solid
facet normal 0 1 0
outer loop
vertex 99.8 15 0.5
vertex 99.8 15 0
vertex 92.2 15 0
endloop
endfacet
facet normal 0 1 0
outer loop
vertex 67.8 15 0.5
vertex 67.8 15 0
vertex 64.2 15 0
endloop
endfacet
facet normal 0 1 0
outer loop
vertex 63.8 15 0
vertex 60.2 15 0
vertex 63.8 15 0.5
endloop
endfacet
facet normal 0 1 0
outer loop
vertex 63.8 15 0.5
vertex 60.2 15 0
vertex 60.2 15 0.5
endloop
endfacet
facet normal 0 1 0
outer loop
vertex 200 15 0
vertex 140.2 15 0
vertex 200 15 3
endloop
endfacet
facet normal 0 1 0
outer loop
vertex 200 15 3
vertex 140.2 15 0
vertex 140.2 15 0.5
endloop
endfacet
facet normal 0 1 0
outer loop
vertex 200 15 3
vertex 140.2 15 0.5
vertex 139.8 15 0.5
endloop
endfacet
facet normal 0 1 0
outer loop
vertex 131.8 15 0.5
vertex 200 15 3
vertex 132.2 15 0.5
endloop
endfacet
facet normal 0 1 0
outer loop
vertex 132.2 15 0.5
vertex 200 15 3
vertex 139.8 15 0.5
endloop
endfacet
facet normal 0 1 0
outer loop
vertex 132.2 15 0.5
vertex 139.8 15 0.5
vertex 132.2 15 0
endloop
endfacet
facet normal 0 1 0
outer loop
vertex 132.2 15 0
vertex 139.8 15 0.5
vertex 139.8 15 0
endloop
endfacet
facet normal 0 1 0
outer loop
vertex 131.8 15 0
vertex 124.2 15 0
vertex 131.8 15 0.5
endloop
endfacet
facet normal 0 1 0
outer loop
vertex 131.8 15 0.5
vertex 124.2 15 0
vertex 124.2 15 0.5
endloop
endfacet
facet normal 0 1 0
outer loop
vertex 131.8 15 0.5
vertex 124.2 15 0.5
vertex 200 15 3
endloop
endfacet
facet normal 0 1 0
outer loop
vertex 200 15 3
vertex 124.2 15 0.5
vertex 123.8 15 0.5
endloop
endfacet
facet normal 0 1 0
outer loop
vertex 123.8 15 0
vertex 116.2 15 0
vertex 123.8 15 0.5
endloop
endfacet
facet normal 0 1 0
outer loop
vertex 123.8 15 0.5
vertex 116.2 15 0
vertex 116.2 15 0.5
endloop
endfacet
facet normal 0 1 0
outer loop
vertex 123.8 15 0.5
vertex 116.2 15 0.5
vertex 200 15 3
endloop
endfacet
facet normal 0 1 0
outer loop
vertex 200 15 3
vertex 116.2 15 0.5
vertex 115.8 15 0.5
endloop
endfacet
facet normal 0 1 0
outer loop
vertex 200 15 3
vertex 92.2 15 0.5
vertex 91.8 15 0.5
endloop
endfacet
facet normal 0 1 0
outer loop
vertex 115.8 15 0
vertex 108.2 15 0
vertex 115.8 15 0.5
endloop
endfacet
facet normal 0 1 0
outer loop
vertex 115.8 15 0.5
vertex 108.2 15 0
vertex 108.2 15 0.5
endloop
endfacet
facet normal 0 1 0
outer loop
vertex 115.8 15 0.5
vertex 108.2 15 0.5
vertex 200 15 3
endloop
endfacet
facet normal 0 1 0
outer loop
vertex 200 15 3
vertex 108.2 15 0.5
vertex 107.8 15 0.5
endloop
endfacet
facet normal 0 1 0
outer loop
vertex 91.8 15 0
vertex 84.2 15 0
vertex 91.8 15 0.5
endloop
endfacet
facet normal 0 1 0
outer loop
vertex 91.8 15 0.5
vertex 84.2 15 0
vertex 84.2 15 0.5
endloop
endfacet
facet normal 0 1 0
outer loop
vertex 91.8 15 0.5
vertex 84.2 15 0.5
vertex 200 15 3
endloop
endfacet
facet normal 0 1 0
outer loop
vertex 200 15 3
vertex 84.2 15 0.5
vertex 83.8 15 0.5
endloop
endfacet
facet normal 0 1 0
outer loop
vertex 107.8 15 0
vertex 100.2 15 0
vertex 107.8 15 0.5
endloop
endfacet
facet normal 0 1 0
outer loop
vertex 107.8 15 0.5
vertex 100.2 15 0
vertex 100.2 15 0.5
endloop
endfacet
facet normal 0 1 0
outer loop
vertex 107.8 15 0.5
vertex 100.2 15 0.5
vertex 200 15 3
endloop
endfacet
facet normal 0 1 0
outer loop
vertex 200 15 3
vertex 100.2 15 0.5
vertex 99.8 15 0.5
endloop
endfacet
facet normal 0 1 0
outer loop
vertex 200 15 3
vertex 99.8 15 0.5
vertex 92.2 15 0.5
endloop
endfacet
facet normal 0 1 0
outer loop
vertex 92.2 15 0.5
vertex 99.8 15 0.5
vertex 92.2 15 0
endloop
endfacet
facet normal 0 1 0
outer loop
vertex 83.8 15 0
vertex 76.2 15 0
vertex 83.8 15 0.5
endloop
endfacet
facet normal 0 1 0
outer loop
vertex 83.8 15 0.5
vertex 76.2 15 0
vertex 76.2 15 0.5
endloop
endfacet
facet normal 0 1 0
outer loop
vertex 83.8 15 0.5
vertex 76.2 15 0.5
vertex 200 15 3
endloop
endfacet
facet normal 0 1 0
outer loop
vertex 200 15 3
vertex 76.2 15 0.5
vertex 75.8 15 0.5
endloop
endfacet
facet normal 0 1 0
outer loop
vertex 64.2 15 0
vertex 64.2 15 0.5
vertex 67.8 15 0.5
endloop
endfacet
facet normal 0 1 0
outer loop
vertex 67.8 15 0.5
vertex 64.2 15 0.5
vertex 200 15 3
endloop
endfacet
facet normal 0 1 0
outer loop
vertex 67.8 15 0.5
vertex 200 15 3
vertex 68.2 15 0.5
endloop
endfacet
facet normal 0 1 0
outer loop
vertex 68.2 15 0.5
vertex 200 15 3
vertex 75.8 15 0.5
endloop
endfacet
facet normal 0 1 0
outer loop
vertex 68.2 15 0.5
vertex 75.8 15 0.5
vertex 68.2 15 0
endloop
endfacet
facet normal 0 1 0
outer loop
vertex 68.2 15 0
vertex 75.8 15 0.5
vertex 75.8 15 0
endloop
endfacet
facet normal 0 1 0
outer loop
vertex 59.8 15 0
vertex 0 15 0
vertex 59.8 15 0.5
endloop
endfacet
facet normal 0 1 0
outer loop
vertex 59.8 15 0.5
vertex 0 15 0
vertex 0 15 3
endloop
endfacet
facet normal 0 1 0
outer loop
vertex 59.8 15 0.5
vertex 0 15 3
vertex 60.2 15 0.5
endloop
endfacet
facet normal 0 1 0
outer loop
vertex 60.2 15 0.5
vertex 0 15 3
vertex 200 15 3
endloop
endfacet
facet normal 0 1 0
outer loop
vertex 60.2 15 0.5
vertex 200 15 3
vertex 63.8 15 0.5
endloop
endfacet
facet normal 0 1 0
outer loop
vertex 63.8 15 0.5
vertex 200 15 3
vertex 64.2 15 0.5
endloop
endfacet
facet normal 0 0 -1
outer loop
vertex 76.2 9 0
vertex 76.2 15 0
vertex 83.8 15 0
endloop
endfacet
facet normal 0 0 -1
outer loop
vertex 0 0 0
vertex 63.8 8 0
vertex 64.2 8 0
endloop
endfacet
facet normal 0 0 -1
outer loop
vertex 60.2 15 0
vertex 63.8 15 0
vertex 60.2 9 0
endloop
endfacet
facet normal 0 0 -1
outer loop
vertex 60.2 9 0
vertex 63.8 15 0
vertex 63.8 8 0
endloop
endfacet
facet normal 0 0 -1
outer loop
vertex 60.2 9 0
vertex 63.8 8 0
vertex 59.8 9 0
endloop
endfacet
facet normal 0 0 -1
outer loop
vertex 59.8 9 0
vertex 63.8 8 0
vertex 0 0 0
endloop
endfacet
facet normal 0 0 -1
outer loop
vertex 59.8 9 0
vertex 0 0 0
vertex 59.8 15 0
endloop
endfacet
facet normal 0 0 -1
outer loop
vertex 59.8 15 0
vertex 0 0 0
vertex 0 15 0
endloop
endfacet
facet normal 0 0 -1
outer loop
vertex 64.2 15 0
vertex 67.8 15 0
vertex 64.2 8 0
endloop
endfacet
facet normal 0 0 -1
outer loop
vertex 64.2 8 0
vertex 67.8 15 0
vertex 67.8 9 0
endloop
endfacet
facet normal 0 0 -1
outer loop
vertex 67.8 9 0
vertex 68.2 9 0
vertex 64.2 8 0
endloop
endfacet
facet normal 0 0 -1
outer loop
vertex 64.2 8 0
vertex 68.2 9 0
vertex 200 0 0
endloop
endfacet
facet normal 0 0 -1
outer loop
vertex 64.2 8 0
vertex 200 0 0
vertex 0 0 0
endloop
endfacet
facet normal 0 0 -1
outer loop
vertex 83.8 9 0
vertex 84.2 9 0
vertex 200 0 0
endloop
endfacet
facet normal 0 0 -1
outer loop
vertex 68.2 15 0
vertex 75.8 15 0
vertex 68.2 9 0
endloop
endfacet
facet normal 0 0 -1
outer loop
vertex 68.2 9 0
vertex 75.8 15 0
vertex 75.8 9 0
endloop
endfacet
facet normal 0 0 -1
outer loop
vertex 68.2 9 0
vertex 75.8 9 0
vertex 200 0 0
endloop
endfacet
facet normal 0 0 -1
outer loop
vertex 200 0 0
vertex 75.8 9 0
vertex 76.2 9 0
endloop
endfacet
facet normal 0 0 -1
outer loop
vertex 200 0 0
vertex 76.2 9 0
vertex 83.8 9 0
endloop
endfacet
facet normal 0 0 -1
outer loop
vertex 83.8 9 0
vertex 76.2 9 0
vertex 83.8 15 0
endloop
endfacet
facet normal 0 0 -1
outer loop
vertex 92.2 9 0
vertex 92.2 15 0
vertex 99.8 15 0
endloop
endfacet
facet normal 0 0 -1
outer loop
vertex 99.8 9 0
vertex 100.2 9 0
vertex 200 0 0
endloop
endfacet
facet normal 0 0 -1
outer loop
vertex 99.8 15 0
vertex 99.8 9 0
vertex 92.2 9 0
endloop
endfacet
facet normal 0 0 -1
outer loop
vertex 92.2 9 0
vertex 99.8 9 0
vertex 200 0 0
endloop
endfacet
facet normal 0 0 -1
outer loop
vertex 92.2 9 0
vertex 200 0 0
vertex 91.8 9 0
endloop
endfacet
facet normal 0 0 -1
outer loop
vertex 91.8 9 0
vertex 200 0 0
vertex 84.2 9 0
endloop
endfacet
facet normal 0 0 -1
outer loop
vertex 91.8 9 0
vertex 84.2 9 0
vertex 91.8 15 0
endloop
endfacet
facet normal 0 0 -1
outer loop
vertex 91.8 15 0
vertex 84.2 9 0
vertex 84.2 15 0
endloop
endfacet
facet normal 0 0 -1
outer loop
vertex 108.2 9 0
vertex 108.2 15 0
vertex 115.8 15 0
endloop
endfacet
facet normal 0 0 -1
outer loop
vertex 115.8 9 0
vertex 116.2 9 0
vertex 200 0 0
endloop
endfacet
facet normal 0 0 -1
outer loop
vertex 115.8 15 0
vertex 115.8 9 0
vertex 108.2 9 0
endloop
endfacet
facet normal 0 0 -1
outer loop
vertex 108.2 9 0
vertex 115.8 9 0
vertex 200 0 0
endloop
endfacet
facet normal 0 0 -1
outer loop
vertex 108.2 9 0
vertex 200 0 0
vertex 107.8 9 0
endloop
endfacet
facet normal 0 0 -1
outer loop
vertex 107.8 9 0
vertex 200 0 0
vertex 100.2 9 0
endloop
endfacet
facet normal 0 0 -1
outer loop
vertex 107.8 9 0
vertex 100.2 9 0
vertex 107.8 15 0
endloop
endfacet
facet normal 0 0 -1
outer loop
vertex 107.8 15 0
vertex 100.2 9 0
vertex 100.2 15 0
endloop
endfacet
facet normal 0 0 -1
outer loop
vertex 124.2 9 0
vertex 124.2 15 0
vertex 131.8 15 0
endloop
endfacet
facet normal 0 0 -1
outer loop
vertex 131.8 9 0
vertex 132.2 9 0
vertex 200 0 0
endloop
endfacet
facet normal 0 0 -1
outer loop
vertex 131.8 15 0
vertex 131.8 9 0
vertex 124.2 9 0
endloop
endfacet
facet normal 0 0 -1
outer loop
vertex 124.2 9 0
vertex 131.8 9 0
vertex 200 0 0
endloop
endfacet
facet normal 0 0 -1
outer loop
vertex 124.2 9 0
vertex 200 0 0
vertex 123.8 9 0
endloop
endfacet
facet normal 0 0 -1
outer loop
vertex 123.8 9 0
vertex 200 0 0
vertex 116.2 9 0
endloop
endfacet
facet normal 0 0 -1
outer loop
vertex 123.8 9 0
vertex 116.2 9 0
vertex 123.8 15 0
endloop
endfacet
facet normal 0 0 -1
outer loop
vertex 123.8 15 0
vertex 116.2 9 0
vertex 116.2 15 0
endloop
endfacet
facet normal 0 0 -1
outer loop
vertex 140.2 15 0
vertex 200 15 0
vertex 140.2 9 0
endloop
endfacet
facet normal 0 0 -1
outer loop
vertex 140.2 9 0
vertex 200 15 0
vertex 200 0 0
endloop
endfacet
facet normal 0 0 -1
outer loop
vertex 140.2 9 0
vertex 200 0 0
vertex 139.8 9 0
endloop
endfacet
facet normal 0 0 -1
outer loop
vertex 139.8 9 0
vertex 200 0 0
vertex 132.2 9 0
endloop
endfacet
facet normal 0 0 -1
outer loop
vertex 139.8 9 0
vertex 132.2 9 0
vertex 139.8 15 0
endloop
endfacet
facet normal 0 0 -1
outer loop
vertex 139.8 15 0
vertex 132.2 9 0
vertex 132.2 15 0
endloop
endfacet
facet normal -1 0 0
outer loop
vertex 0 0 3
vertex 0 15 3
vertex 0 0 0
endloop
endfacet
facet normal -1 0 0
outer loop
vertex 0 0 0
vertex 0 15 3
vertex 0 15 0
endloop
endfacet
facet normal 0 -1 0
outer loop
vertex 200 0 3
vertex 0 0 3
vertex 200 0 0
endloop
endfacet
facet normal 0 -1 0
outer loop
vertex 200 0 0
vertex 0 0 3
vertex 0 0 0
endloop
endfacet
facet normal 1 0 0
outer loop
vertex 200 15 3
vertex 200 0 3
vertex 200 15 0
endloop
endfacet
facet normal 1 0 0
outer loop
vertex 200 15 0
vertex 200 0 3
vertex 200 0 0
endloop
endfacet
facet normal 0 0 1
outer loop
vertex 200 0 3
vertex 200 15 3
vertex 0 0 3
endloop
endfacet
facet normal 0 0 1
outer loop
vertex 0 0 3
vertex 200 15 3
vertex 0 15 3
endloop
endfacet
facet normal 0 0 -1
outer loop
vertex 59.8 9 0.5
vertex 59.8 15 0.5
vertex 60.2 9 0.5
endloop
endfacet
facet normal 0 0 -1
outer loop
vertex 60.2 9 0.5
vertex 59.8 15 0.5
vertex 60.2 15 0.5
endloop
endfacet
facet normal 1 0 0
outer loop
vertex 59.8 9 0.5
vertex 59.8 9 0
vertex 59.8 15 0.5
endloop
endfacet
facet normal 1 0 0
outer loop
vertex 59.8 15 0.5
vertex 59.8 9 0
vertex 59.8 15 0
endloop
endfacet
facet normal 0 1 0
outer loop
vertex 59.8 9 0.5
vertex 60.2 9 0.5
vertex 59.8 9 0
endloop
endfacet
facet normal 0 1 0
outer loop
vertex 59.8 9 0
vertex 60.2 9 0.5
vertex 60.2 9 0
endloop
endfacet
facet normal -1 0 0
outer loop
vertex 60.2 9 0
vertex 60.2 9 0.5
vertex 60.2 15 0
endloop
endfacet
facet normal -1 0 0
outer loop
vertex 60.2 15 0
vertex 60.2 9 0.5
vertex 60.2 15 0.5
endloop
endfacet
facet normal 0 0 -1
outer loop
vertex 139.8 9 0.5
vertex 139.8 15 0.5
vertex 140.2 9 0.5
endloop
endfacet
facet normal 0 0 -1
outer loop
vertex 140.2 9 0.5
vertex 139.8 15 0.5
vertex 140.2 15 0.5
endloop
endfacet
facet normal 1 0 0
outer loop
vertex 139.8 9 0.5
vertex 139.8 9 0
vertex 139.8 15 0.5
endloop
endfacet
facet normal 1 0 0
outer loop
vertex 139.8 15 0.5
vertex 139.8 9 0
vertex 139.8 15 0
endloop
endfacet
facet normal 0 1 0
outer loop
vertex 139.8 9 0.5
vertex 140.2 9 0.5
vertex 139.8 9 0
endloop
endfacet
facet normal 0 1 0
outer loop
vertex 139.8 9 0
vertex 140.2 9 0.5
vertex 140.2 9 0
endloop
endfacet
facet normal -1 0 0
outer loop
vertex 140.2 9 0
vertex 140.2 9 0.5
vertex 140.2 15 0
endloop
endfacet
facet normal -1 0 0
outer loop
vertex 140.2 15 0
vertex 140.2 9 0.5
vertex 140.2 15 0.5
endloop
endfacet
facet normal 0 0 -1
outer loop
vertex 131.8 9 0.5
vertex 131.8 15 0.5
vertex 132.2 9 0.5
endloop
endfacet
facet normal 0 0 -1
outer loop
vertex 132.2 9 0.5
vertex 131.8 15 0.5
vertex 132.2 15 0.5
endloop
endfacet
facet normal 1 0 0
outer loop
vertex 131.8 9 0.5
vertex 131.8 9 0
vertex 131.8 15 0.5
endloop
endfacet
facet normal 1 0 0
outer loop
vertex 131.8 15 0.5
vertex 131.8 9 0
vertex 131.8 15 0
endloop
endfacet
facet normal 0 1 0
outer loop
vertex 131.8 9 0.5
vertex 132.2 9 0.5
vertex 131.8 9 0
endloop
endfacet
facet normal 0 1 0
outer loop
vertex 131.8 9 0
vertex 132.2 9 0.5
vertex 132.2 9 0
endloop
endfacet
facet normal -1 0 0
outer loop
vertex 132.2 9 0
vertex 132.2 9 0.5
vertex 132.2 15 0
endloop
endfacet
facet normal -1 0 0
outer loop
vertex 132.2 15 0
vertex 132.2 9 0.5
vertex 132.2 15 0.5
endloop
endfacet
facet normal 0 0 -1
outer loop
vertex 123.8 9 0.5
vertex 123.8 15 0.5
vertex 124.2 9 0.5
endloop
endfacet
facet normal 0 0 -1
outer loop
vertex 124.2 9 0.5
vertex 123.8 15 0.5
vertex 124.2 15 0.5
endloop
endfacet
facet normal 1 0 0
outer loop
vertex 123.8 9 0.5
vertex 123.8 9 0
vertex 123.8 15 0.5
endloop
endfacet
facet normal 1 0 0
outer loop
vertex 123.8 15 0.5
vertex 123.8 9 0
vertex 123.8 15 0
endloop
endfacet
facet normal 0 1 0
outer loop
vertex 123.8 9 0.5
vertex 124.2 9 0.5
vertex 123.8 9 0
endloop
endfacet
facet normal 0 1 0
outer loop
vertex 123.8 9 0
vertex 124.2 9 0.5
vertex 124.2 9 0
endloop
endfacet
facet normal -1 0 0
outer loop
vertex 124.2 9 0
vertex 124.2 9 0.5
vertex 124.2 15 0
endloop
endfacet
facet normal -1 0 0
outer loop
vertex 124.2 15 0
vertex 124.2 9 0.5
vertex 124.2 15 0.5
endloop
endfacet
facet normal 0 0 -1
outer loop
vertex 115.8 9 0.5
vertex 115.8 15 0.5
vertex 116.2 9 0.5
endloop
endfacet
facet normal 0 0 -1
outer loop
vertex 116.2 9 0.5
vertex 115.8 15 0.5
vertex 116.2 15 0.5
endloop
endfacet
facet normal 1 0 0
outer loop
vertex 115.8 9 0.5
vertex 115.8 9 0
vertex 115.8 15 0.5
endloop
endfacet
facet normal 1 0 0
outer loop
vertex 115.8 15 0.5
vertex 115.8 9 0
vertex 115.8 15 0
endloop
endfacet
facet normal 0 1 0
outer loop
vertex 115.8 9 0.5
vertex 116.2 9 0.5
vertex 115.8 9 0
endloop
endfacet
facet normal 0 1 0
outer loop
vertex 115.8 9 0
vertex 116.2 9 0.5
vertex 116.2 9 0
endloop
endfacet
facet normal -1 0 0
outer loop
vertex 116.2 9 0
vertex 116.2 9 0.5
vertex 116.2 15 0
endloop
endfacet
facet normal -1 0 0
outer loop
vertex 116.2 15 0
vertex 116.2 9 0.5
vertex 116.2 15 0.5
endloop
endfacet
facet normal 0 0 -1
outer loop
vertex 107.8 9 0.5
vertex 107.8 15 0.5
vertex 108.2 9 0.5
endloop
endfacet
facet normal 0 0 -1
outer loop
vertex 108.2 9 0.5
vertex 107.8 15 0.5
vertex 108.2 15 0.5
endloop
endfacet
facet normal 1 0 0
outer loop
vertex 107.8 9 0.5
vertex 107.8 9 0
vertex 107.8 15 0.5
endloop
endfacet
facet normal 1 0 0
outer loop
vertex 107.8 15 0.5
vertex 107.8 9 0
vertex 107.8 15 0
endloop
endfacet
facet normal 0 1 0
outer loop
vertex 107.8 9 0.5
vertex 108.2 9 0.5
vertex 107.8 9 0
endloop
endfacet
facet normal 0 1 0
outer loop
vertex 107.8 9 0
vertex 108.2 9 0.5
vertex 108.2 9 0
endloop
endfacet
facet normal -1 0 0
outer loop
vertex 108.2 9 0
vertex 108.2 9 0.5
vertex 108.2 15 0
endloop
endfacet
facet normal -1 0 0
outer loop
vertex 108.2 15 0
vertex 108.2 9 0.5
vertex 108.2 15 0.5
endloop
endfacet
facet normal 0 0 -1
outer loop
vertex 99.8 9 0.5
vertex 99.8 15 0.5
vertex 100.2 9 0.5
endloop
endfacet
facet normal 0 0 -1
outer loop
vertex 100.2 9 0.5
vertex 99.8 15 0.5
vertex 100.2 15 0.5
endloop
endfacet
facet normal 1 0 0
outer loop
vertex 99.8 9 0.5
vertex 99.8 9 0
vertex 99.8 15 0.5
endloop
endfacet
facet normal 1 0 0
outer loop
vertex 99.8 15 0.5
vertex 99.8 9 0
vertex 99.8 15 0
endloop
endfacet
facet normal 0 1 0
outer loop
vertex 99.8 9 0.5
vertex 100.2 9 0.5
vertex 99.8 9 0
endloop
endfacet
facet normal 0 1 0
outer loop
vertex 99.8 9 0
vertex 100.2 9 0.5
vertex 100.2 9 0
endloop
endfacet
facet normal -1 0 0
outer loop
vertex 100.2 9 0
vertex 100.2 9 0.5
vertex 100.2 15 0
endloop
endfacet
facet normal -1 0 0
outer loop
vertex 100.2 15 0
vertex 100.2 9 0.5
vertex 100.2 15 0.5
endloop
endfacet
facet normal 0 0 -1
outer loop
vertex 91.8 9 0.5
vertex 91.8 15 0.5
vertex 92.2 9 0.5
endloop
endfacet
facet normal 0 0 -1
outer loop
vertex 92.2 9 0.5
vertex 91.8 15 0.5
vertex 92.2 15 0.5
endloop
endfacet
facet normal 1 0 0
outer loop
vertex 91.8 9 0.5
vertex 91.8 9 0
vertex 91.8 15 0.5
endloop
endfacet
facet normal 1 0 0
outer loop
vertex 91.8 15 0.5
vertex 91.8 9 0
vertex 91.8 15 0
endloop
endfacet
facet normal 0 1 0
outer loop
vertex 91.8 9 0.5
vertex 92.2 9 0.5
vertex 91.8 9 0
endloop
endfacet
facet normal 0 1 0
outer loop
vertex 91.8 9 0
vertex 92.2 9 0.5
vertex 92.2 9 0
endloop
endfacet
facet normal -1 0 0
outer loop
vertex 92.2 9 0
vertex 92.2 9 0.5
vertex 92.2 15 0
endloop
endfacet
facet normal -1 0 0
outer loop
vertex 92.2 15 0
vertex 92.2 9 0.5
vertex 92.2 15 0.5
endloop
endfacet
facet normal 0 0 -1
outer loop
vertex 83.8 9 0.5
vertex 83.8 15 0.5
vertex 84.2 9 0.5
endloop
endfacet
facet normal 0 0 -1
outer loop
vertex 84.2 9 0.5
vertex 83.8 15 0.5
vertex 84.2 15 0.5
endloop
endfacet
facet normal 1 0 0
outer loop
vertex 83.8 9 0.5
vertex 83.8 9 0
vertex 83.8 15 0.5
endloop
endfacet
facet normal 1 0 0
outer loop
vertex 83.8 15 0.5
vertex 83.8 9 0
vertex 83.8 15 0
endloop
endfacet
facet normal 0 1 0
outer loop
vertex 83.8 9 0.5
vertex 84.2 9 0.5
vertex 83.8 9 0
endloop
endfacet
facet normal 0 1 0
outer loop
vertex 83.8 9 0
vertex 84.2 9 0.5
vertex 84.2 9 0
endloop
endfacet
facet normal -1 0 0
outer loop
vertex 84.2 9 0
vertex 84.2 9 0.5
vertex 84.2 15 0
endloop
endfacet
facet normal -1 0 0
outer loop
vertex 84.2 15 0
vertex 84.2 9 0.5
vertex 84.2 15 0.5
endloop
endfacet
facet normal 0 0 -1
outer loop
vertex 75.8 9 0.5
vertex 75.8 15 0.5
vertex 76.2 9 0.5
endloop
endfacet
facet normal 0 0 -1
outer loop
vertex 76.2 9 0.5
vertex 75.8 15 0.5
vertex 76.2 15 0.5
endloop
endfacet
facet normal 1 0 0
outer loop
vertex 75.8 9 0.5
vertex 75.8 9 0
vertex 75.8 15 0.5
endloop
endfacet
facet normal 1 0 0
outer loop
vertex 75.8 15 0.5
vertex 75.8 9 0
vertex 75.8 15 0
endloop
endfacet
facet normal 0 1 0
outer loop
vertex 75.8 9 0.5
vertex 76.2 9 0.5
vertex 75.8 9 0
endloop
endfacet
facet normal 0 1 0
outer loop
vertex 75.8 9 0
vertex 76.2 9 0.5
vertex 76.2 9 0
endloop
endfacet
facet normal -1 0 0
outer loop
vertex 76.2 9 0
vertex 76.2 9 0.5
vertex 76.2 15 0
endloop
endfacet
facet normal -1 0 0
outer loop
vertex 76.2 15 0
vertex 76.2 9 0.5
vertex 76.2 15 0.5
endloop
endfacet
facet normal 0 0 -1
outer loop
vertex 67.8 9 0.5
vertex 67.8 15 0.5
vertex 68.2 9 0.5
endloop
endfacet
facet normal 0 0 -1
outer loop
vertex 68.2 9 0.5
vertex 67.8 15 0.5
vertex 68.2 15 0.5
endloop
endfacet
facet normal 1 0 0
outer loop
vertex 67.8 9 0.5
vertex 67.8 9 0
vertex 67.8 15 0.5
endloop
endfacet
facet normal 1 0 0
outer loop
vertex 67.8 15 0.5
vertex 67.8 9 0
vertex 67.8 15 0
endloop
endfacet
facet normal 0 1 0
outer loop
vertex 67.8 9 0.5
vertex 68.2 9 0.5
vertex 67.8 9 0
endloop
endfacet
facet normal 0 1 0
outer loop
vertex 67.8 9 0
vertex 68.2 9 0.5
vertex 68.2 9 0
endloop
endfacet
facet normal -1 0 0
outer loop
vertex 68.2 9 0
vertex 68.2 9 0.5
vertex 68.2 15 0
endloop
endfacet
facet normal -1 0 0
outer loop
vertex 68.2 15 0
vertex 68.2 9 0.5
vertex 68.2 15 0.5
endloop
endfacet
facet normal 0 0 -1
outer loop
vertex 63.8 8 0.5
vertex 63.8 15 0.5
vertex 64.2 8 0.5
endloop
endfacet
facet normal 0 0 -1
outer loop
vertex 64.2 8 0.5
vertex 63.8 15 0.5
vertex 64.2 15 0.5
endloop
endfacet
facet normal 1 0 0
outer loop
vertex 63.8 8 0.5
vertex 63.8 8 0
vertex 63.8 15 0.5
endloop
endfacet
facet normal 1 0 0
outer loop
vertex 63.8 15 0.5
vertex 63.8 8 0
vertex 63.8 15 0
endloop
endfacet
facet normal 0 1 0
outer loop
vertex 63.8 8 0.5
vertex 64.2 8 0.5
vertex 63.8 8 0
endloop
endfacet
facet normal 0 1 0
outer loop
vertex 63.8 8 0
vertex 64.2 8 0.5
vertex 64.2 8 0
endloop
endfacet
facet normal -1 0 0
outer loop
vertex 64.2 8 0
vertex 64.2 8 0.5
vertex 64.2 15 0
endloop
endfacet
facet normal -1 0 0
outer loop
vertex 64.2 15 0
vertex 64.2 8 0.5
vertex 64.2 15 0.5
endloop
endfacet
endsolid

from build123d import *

# Parameters (mm, degrees)
SKETCH1_W               = 200
SKETCH1_H               = 15
BOSS_EXTRUDE1_DEPTH     = 3
SKETCH2_W               = 0.4
SKETCH2_H               = 7
CUT_EXTRUDE2_DEPTH      = 0.5
LPATTERN1_COUNT         = 11
LPATTERN1_PITCH         = 8
CUT_EXTRUDE4_DEPTH      = 0.5
CUT_EXTRUDE4_DEPTH_BACK = 0.5
SKETCH3_W               = 0.4
SKETCH3_H               = 8


with BuildPart() as part:
    # Sketch1 → Boss-Extrude1 (new body)
    with BuildSketch(Plane.XY):
        with Locations((100, 7.5)):
            Rectangle(SKETCH1_W, SKETCH1_H)
    extrude(amount=BOSS_EXTRUDE1_DEPTH)

    # Sketch2 → Cut-Extrude2 (cut, symmetric)
    with BuildSketch(Plane.XY):
        with Locations((60, 12.5)):
            Rectangle(SKETCH2_W, SKETCH2_H)
    cut_extrude2 = extrude(amount=CUT_EXTRUDE2_DEPTH, both=True, mode=Mode.SUBTRACT)

    # LPattern1: Cut-Extrude2 ×11
    with Locations(*[(i * LPATTERN1_PITCH, 0, 0) for i in range(1, LPATTERN1_COUNT)]):
        add(cut_extrude2, mode=Mode.SUBTRACT)

    # Sketch3 → Cut-Extrude4 (cut, two sides: drawn at the far end of the back side and taken through both)
    with BuildSketch(Plane.XY.offset(-CUT_EXTRUDE4_DEPTH_BACK)):
        with Locations((64, 12)):
            Rectangle(SKETCH3_W, SKETCH3_H)
    extrude(amount=CUT_EXTRUDE4_DEPTH + CUT_EXTRUDE4_DEPTH_BACK, mode=Mode.SUBTRACT)


solid = part.part
